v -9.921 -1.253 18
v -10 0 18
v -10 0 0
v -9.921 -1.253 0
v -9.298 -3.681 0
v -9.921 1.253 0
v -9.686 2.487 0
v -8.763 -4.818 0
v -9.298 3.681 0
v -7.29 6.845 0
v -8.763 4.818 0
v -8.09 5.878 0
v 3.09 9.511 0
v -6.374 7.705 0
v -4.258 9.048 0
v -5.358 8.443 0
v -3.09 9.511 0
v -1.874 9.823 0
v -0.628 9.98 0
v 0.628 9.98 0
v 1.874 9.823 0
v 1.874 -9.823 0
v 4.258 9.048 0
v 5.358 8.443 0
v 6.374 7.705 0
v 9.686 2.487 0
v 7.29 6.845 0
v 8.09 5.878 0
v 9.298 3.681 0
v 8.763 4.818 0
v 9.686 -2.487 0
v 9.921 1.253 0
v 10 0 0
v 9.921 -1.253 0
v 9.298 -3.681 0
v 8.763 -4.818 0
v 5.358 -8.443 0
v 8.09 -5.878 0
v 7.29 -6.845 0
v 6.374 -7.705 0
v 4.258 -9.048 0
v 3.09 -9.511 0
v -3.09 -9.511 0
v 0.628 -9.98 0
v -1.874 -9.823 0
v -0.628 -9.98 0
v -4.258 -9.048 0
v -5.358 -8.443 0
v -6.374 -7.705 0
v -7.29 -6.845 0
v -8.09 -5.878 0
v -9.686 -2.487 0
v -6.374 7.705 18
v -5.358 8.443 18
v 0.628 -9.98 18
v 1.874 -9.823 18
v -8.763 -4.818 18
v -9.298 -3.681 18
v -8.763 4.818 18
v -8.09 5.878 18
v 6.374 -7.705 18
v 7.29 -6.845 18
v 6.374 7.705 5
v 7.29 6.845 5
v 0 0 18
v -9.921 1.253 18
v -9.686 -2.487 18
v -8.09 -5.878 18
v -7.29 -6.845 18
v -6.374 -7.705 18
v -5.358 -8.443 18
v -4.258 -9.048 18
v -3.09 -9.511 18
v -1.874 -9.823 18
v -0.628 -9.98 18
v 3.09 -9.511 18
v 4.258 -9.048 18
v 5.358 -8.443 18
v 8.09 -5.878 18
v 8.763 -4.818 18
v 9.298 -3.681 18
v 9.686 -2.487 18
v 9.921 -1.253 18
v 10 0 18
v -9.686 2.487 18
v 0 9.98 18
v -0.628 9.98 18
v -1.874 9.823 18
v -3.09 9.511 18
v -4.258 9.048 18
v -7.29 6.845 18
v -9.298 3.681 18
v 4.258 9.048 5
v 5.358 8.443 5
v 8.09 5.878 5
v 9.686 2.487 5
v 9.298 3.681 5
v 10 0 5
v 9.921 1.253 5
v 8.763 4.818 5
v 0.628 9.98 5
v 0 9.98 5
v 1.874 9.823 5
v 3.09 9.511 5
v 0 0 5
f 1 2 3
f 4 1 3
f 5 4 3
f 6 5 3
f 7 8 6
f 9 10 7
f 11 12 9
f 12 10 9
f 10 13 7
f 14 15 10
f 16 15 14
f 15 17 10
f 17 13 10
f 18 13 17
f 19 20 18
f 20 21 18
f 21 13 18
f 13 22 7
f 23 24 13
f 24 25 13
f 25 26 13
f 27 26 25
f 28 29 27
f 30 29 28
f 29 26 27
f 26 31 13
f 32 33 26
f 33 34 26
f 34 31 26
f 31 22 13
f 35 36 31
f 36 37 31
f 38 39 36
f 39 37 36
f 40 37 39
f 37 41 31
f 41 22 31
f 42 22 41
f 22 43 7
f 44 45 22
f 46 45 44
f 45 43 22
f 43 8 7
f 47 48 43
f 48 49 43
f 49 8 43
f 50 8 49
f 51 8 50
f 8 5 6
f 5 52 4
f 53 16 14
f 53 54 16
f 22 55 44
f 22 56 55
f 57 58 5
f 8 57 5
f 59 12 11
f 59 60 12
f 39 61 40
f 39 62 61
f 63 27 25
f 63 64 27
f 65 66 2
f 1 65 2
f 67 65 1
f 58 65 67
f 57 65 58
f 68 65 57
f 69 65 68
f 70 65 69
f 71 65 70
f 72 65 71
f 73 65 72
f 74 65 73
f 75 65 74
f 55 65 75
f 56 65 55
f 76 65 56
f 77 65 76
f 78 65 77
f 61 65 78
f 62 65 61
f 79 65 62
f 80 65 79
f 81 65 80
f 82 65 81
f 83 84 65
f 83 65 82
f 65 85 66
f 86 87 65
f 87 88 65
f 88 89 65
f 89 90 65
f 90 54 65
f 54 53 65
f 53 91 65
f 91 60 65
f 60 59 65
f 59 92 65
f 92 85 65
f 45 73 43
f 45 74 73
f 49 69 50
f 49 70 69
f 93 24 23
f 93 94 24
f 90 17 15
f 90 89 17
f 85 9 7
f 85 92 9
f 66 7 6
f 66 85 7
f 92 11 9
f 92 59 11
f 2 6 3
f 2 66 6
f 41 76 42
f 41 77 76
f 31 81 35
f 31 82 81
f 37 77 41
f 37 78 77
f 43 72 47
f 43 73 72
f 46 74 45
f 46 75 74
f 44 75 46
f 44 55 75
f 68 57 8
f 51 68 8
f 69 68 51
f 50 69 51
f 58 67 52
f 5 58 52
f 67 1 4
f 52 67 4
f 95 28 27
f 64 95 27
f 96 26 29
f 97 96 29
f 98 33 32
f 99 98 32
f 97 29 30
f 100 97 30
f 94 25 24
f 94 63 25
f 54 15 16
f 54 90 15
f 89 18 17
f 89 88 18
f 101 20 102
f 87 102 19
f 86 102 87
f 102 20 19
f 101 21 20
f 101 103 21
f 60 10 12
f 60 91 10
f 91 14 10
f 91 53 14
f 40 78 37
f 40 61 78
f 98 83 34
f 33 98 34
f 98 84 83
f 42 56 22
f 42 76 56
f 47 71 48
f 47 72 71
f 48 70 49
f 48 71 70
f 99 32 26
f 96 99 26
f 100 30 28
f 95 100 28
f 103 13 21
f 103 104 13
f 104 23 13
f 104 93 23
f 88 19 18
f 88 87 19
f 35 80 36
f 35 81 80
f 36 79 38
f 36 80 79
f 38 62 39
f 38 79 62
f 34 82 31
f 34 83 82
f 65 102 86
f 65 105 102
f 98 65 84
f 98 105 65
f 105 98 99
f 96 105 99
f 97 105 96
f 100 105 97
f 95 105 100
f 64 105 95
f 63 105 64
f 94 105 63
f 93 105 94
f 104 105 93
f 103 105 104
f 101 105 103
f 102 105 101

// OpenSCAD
// feet for the lasercutter platform

difference() {
   cylinder(r=10,h=18,$fn=50);
   translate([0,0,5]) cube([20,20,20]);
}
